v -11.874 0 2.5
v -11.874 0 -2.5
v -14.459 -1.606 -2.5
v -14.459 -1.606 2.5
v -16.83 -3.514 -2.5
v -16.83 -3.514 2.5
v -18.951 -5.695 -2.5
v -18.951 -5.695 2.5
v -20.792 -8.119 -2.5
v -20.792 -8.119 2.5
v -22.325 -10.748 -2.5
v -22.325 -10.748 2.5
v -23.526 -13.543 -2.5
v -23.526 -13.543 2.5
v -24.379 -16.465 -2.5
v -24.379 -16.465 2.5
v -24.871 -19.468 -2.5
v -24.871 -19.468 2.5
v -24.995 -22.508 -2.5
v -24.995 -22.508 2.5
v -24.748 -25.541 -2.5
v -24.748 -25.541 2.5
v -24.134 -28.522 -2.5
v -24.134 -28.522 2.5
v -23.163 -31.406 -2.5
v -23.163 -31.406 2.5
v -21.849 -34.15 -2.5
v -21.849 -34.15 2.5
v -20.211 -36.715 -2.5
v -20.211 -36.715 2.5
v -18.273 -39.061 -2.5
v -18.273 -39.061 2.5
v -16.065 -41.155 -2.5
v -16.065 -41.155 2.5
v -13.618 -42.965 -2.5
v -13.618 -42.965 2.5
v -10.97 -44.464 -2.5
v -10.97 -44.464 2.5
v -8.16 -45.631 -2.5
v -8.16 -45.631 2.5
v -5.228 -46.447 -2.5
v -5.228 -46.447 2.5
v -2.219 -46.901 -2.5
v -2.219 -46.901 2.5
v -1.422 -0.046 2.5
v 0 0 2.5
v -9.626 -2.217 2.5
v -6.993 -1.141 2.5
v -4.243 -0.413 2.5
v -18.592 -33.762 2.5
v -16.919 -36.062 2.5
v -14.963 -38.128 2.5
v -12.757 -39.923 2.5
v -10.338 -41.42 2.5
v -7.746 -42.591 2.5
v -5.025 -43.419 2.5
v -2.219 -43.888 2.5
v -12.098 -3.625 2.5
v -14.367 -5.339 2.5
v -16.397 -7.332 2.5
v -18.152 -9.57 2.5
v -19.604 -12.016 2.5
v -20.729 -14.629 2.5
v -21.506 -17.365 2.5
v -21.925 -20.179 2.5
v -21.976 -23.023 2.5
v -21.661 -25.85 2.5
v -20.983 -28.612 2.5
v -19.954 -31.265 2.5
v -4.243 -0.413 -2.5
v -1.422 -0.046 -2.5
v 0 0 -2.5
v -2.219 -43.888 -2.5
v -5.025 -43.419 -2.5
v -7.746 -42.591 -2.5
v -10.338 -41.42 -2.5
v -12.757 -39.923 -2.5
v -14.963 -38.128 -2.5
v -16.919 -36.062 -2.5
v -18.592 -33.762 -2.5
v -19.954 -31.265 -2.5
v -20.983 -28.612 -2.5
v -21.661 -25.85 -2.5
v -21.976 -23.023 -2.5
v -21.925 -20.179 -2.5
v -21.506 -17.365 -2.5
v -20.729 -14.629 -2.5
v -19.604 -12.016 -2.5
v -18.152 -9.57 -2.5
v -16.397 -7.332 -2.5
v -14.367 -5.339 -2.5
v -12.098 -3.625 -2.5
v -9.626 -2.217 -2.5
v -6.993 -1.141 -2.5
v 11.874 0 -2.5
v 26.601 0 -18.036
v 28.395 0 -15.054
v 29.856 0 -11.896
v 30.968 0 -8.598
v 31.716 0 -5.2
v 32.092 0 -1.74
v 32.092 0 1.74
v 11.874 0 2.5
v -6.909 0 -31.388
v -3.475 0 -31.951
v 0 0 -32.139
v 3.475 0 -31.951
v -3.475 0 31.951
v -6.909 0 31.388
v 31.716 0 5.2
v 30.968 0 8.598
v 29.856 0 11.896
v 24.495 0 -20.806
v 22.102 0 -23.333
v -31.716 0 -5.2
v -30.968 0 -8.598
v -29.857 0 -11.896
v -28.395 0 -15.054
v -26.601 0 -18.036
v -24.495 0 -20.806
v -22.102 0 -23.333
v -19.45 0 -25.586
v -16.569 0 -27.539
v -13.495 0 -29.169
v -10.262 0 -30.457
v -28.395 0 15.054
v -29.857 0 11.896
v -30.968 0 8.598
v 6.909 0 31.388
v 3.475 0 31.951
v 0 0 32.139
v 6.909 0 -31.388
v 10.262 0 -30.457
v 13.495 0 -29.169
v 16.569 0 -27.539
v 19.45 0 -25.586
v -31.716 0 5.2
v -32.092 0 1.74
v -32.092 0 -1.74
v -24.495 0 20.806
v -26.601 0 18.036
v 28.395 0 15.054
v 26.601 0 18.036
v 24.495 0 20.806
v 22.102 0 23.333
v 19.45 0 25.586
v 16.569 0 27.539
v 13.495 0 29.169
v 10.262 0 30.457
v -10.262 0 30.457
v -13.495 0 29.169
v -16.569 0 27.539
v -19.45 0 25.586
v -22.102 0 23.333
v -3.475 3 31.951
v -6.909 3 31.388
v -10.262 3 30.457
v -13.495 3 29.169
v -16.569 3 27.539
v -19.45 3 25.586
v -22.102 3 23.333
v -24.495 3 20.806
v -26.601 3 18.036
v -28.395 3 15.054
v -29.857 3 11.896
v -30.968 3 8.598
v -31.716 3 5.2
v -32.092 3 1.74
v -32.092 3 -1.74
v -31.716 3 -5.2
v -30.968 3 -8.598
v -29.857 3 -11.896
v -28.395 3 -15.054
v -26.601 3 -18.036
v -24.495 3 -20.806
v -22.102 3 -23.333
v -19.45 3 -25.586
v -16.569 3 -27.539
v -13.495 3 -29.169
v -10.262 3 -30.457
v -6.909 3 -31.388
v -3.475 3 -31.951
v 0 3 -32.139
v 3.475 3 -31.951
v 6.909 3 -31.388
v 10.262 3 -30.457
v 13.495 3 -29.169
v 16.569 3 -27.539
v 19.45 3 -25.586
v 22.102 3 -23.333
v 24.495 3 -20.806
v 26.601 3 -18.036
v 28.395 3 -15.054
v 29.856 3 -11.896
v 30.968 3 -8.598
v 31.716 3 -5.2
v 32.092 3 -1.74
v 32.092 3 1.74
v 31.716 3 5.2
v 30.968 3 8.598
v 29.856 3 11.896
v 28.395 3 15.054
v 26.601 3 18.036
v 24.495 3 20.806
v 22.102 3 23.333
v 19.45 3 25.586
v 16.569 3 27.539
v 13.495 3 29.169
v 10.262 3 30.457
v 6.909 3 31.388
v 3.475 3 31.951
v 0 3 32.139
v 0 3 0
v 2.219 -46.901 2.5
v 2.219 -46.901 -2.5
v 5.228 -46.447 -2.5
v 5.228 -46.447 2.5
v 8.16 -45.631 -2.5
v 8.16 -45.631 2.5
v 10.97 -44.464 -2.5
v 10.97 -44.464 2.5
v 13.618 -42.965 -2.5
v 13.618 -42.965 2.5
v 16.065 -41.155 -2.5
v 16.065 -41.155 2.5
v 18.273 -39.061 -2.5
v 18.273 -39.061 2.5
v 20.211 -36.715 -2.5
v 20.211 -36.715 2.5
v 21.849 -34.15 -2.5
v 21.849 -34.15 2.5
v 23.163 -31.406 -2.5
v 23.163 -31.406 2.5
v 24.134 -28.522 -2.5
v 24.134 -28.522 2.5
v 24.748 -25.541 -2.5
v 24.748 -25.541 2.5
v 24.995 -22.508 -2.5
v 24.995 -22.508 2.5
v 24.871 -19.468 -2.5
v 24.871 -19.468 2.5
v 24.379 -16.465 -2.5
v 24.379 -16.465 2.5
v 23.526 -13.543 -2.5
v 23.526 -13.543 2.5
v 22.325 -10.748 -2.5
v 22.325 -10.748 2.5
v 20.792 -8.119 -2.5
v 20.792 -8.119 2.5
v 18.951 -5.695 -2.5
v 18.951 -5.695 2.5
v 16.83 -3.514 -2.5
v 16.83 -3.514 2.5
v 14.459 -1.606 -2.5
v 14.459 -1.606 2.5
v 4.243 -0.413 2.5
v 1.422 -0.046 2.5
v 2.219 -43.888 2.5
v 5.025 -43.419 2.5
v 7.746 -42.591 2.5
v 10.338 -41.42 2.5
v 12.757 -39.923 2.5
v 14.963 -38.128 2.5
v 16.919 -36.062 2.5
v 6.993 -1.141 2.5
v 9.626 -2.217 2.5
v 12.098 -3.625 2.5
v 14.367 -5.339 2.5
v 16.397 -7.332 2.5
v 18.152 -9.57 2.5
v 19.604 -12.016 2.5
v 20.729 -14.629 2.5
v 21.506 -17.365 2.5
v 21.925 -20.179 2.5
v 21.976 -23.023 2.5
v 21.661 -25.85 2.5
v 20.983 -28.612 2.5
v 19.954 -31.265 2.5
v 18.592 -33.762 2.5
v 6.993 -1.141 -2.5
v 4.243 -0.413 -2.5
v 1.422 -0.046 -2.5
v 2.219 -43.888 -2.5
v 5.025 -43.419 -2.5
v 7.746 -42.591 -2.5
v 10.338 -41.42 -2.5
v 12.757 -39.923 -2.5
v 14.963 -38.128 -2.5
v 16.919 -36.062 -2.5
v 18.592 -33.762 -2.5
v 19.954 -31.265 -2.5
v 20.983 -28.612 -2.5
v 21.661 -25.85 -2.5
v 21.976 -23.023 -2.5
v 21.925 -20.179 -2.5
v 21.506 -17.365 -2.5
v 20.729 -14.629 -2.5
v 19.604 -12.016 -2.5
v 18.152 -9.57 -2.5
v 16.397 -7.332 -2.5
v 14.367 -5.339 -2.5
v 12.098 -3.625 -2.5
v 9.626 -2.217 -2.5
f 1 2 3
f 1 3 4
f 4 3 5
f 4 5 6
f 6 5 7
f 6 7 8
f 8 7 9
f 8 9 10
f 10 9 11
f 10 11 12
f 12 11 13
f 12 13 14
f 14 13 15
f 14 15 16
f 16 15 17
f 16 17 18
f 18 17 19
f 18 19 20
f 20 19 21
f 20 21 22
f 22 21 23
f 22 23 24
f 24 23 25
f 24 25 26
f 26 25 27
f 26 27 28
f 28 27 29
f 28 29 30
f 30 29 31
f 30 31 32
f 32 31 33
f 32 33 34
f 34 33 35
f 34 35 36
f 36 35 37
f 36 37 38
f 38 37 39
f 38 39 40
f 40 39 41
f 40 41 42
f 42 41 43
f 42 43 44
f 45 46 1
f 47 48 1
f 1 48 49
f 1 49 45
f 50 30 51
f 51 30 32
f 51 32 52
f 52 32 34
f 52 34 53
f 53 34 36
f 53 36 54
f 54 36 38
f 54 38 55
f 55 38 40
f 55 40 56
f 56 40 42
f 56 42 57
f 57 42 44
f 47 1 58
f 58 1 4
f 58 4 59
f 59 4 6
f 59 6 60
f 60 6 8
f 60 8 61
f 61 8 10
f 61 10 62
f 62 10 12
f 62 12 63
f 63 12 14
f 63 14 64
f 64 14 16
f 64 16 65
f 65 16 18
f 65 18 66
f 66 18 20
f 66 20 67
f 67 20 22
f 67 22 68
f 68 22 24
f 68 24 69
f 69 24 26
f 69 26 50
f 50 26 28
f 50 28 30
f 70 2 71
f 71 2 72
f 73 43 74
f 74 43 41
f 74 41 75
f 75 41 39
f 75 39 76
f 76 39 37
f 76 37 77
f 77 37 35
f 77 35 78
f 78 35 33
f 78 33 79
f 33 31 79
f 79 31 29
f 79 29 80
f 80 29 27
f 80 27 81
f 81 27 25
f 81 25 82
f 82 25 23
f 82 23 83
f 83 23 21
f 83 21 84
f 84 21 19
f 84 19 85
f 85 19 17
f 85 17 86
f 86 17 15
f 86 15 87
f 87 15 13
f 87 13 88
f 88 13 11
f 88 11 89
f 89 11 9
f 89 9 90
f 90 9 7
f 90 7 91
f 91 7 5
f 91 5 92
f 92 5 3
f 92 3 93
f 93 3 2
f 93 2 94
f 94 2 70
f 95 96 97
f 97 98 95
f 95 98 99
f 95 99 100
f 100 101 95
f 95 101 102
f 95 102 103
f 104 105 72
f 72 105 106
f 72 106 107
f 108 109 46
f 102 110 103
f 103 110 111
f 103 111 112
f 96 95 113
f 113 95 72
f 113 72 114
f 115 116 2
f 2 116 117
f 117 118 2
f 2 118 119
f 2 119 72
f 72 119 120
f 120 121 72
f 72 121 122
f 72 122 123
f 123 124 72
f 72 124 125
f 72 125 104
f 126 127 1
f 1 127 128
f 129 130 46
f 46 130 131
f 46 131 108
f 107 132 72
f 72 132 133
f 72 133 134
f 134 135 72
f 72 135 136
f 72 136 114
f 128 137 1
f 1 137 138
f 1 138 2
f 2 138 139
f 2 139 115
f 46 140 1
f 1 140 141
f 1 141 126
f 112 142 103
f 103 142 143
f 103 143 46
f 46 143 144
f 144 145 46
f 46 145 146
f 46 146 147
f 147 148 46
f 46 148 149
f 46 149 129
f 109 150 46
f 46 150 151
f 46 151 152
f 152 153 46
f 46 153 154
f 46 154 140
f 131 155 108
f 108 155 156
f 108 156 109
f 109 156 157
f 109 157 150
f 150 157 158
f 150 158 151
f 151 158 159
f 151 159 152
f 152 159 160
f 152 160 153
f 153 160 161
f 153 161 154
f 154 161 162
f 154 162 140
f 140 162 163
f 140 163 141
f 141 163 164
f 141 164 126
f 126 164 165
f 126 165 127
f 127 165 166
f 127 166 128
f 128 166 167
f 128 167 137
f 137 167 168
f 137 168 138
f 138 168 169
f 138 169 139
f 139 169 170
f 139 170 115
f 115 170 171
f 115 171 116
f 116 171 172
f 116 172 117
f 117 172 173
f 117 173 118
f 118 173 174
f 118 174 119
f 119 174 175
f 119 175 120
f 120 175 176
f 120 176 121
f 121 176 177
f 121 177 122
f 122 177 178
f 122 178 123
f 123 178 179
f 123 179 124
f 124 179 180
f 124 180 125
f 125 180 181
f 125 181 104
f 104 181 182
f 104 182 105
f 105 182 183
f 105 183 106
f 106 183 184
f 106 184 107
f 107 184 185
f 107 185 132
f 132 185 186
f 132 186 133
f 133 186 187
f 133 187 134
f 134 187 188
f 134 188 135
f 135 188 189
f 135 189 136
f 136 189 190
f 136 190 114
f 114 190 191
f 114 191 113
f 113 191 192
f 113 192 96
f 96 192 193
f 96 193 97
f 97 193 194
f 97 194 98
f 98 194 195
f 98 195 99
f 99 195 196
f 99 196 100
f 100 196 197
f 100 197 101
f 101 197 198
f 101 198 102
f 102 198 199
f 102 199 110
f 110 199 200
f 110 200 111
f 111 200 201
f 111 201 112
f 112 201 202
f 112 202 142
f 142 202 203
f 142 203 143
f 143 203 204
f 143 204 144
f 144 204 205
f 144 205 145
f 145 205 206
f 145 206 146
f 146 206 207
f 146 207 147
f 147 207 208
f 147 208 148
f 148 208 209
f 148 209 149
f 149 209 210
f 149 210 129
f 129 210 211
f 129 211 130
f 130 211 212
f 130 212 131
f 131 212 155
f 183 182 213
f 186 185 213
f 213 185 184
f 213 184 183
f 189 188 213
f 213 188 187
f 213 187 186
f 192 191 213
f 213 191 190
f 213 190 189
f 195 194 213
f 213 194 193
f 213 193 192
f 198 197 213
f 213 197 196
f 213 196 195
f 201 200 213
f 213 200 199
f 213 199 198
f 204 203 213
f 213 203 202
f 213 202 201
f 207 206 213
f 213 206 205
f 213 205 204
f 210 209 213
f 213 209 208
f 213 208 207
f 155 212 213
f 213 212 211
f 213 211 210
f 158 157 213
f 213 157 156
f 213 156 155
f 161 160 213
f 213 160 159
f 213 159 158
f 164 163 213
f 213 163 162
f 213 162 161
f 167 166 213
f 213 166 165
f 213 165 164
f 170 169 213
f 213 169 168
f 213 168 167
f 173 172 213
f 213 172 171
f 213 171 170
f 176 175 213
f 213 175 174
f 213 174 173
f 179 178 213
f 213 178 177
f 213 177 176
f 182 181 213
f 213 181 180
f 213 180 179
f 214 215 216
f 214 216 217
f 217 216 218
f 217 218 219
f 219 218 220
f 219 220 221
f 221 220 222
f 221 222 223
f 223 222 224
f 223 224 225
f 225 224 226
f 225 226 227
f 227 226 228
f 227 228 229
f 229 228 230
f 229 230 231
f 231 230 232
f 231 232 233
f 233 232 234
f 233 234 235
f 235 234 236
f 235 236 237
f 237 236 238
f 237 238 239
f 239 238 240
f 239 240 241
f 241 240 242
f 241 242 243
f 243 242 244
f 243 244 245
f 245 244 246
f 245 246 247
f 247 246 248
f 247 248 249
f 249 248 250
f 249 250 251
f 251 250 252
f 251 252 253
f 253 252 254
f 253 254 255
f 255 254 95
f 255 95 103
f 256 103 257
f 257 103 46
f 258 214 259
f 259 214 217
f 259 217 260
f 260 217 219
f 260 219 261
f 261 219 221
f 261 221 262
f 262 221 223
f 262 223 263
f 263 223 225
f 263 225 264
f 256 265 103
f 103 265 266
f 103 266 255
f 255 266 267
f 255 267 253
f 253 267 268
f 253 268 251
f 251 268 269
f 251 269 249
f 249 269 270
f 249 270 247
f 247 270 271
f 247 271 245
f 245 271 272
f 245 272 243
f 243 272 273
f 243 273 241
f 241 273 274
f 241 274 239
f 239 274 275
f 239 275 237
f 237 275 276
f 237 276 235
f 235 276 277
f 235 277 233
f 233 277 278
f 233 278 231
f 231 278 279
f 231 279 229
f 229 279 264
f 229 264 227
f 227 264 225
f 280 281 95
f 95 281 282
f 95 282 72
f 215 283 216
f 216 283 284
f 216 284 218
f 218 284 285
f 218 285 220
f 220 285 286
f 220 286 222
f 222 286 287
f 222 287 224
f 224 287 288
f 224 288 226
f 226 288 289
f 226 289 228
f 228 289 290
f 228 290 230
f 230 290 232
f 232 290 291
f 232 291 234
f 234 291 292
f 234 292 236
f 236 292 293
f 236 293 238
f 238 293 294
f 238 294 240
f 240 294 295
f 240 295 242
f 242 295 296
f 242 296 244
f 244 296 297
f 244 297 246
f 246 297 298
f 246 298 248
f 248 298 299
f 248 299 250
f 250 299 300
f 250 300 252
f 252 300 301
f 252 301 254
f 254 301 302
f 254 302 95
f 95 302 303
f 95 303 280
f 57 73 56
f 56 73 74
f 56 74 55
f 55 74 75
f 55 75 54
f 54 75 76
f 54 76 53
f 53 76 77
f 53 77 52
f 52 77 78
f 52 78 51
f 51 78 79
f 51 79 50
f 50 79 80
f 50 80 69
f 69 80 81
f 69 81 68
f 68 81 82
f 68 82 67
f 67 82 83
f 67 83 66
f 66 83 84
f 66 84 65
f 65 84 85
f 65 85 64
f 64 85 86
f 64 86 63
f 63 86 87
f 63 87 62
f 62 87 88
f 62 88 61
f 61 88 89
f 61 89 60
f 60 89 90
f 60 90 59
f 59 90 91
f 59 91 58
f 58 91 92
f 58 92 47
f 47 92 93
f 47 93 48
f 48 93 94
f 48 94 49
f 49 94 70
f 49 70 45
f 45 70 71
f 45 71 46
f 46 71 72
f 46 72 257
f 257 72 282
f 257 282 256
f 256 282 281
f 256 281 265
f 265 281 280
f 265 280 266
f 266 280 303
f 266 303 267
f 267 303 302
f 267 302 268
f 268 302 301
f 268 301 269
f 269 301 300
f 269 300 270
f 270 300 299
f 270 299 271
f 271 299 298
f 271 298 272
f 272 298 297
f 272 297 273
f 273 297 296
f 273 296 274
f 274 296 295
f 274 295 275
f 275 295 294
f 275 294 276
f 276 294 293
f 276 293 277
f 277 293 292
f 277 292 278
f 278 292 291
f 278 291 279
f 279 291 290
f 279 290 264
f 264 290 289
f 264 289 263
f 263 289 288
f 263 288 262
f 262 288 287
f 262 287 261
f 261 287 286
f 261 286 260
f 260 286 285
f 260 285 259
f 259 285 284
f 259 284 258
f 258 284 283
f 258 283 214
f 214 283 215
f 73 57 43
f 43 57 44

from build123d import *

# Parameters (mm, degrees)
ESQUISSE1_R             = 32.139129067
BOSS_EXTRU_1_DEPTH      = 3
BOSS_EXTRU_2_DEPTH      = 2.5
BOSS_EXTRU_2_DEPTH_BACK = 2.5
ESQUISSE2_R             = 25
ESQUISSE3_R             = 22
ENL_V_MAT_EXTRU_1_DEPTH = 5
ESQUISSE7_W             = 4.438304304
ESQUISSE7_H             = 8.275677871
ENL_V_MAT_EXTRU_4_DEPTH = 5


with BuildPart() as part:
    # Esquisse1 → Boss.-Extru.1 (new body)
    with BuildSketch(Plane(origin=(0, 0, 0), x_dir=(1, 0, 0), z_dir=(0, 1, 0))):
        Circle(ESQUISSE1_R)
    extrude(amount=BOSS_EXTRU_1_DEPTH)

    # Esquisse2 → Boss.-Extru.2 (add, two sides: drawn at the far end of the back side and taken through both)
    with BuildSketch(Plane.XY.offset(-BOSS_EXTRU_2_DEPTH_BACK)):
        with Locations((0, -22)):
            Circle(ESQUISSE2_R)
    extrude(amount=BOSS_EXTRU_2_DEPTH + BOSS_EXTRU_2_DEPTH_BACK)

    # Esquisse3 → Enlèv. mat.-Extru.1 (cut)
    with BuildSketch(Plane.XY.offset(2.5)):
        with Locations((0, -22)):
            Circle(ESQUISSE3_R)
    extrude(amount=-ENL_V_MAT_EXTRU_1_DEPTH, mode=Mode.SUBTRACT)

    # Esquisse7 → Enlèv. mat.-Extru.4 (cut)
    with BuildSketch(Plane.XY.offset(2.5)):
        with Locations((0, -45.862161065)):
            Rectangle(ESQUISSE7_W, ESQUISSE7_H)
    extrude(amount=-ENL_V_MAT_EXTRU_4_DEPTH, mode=Mode.SUBTRACT)


solid = part.part
